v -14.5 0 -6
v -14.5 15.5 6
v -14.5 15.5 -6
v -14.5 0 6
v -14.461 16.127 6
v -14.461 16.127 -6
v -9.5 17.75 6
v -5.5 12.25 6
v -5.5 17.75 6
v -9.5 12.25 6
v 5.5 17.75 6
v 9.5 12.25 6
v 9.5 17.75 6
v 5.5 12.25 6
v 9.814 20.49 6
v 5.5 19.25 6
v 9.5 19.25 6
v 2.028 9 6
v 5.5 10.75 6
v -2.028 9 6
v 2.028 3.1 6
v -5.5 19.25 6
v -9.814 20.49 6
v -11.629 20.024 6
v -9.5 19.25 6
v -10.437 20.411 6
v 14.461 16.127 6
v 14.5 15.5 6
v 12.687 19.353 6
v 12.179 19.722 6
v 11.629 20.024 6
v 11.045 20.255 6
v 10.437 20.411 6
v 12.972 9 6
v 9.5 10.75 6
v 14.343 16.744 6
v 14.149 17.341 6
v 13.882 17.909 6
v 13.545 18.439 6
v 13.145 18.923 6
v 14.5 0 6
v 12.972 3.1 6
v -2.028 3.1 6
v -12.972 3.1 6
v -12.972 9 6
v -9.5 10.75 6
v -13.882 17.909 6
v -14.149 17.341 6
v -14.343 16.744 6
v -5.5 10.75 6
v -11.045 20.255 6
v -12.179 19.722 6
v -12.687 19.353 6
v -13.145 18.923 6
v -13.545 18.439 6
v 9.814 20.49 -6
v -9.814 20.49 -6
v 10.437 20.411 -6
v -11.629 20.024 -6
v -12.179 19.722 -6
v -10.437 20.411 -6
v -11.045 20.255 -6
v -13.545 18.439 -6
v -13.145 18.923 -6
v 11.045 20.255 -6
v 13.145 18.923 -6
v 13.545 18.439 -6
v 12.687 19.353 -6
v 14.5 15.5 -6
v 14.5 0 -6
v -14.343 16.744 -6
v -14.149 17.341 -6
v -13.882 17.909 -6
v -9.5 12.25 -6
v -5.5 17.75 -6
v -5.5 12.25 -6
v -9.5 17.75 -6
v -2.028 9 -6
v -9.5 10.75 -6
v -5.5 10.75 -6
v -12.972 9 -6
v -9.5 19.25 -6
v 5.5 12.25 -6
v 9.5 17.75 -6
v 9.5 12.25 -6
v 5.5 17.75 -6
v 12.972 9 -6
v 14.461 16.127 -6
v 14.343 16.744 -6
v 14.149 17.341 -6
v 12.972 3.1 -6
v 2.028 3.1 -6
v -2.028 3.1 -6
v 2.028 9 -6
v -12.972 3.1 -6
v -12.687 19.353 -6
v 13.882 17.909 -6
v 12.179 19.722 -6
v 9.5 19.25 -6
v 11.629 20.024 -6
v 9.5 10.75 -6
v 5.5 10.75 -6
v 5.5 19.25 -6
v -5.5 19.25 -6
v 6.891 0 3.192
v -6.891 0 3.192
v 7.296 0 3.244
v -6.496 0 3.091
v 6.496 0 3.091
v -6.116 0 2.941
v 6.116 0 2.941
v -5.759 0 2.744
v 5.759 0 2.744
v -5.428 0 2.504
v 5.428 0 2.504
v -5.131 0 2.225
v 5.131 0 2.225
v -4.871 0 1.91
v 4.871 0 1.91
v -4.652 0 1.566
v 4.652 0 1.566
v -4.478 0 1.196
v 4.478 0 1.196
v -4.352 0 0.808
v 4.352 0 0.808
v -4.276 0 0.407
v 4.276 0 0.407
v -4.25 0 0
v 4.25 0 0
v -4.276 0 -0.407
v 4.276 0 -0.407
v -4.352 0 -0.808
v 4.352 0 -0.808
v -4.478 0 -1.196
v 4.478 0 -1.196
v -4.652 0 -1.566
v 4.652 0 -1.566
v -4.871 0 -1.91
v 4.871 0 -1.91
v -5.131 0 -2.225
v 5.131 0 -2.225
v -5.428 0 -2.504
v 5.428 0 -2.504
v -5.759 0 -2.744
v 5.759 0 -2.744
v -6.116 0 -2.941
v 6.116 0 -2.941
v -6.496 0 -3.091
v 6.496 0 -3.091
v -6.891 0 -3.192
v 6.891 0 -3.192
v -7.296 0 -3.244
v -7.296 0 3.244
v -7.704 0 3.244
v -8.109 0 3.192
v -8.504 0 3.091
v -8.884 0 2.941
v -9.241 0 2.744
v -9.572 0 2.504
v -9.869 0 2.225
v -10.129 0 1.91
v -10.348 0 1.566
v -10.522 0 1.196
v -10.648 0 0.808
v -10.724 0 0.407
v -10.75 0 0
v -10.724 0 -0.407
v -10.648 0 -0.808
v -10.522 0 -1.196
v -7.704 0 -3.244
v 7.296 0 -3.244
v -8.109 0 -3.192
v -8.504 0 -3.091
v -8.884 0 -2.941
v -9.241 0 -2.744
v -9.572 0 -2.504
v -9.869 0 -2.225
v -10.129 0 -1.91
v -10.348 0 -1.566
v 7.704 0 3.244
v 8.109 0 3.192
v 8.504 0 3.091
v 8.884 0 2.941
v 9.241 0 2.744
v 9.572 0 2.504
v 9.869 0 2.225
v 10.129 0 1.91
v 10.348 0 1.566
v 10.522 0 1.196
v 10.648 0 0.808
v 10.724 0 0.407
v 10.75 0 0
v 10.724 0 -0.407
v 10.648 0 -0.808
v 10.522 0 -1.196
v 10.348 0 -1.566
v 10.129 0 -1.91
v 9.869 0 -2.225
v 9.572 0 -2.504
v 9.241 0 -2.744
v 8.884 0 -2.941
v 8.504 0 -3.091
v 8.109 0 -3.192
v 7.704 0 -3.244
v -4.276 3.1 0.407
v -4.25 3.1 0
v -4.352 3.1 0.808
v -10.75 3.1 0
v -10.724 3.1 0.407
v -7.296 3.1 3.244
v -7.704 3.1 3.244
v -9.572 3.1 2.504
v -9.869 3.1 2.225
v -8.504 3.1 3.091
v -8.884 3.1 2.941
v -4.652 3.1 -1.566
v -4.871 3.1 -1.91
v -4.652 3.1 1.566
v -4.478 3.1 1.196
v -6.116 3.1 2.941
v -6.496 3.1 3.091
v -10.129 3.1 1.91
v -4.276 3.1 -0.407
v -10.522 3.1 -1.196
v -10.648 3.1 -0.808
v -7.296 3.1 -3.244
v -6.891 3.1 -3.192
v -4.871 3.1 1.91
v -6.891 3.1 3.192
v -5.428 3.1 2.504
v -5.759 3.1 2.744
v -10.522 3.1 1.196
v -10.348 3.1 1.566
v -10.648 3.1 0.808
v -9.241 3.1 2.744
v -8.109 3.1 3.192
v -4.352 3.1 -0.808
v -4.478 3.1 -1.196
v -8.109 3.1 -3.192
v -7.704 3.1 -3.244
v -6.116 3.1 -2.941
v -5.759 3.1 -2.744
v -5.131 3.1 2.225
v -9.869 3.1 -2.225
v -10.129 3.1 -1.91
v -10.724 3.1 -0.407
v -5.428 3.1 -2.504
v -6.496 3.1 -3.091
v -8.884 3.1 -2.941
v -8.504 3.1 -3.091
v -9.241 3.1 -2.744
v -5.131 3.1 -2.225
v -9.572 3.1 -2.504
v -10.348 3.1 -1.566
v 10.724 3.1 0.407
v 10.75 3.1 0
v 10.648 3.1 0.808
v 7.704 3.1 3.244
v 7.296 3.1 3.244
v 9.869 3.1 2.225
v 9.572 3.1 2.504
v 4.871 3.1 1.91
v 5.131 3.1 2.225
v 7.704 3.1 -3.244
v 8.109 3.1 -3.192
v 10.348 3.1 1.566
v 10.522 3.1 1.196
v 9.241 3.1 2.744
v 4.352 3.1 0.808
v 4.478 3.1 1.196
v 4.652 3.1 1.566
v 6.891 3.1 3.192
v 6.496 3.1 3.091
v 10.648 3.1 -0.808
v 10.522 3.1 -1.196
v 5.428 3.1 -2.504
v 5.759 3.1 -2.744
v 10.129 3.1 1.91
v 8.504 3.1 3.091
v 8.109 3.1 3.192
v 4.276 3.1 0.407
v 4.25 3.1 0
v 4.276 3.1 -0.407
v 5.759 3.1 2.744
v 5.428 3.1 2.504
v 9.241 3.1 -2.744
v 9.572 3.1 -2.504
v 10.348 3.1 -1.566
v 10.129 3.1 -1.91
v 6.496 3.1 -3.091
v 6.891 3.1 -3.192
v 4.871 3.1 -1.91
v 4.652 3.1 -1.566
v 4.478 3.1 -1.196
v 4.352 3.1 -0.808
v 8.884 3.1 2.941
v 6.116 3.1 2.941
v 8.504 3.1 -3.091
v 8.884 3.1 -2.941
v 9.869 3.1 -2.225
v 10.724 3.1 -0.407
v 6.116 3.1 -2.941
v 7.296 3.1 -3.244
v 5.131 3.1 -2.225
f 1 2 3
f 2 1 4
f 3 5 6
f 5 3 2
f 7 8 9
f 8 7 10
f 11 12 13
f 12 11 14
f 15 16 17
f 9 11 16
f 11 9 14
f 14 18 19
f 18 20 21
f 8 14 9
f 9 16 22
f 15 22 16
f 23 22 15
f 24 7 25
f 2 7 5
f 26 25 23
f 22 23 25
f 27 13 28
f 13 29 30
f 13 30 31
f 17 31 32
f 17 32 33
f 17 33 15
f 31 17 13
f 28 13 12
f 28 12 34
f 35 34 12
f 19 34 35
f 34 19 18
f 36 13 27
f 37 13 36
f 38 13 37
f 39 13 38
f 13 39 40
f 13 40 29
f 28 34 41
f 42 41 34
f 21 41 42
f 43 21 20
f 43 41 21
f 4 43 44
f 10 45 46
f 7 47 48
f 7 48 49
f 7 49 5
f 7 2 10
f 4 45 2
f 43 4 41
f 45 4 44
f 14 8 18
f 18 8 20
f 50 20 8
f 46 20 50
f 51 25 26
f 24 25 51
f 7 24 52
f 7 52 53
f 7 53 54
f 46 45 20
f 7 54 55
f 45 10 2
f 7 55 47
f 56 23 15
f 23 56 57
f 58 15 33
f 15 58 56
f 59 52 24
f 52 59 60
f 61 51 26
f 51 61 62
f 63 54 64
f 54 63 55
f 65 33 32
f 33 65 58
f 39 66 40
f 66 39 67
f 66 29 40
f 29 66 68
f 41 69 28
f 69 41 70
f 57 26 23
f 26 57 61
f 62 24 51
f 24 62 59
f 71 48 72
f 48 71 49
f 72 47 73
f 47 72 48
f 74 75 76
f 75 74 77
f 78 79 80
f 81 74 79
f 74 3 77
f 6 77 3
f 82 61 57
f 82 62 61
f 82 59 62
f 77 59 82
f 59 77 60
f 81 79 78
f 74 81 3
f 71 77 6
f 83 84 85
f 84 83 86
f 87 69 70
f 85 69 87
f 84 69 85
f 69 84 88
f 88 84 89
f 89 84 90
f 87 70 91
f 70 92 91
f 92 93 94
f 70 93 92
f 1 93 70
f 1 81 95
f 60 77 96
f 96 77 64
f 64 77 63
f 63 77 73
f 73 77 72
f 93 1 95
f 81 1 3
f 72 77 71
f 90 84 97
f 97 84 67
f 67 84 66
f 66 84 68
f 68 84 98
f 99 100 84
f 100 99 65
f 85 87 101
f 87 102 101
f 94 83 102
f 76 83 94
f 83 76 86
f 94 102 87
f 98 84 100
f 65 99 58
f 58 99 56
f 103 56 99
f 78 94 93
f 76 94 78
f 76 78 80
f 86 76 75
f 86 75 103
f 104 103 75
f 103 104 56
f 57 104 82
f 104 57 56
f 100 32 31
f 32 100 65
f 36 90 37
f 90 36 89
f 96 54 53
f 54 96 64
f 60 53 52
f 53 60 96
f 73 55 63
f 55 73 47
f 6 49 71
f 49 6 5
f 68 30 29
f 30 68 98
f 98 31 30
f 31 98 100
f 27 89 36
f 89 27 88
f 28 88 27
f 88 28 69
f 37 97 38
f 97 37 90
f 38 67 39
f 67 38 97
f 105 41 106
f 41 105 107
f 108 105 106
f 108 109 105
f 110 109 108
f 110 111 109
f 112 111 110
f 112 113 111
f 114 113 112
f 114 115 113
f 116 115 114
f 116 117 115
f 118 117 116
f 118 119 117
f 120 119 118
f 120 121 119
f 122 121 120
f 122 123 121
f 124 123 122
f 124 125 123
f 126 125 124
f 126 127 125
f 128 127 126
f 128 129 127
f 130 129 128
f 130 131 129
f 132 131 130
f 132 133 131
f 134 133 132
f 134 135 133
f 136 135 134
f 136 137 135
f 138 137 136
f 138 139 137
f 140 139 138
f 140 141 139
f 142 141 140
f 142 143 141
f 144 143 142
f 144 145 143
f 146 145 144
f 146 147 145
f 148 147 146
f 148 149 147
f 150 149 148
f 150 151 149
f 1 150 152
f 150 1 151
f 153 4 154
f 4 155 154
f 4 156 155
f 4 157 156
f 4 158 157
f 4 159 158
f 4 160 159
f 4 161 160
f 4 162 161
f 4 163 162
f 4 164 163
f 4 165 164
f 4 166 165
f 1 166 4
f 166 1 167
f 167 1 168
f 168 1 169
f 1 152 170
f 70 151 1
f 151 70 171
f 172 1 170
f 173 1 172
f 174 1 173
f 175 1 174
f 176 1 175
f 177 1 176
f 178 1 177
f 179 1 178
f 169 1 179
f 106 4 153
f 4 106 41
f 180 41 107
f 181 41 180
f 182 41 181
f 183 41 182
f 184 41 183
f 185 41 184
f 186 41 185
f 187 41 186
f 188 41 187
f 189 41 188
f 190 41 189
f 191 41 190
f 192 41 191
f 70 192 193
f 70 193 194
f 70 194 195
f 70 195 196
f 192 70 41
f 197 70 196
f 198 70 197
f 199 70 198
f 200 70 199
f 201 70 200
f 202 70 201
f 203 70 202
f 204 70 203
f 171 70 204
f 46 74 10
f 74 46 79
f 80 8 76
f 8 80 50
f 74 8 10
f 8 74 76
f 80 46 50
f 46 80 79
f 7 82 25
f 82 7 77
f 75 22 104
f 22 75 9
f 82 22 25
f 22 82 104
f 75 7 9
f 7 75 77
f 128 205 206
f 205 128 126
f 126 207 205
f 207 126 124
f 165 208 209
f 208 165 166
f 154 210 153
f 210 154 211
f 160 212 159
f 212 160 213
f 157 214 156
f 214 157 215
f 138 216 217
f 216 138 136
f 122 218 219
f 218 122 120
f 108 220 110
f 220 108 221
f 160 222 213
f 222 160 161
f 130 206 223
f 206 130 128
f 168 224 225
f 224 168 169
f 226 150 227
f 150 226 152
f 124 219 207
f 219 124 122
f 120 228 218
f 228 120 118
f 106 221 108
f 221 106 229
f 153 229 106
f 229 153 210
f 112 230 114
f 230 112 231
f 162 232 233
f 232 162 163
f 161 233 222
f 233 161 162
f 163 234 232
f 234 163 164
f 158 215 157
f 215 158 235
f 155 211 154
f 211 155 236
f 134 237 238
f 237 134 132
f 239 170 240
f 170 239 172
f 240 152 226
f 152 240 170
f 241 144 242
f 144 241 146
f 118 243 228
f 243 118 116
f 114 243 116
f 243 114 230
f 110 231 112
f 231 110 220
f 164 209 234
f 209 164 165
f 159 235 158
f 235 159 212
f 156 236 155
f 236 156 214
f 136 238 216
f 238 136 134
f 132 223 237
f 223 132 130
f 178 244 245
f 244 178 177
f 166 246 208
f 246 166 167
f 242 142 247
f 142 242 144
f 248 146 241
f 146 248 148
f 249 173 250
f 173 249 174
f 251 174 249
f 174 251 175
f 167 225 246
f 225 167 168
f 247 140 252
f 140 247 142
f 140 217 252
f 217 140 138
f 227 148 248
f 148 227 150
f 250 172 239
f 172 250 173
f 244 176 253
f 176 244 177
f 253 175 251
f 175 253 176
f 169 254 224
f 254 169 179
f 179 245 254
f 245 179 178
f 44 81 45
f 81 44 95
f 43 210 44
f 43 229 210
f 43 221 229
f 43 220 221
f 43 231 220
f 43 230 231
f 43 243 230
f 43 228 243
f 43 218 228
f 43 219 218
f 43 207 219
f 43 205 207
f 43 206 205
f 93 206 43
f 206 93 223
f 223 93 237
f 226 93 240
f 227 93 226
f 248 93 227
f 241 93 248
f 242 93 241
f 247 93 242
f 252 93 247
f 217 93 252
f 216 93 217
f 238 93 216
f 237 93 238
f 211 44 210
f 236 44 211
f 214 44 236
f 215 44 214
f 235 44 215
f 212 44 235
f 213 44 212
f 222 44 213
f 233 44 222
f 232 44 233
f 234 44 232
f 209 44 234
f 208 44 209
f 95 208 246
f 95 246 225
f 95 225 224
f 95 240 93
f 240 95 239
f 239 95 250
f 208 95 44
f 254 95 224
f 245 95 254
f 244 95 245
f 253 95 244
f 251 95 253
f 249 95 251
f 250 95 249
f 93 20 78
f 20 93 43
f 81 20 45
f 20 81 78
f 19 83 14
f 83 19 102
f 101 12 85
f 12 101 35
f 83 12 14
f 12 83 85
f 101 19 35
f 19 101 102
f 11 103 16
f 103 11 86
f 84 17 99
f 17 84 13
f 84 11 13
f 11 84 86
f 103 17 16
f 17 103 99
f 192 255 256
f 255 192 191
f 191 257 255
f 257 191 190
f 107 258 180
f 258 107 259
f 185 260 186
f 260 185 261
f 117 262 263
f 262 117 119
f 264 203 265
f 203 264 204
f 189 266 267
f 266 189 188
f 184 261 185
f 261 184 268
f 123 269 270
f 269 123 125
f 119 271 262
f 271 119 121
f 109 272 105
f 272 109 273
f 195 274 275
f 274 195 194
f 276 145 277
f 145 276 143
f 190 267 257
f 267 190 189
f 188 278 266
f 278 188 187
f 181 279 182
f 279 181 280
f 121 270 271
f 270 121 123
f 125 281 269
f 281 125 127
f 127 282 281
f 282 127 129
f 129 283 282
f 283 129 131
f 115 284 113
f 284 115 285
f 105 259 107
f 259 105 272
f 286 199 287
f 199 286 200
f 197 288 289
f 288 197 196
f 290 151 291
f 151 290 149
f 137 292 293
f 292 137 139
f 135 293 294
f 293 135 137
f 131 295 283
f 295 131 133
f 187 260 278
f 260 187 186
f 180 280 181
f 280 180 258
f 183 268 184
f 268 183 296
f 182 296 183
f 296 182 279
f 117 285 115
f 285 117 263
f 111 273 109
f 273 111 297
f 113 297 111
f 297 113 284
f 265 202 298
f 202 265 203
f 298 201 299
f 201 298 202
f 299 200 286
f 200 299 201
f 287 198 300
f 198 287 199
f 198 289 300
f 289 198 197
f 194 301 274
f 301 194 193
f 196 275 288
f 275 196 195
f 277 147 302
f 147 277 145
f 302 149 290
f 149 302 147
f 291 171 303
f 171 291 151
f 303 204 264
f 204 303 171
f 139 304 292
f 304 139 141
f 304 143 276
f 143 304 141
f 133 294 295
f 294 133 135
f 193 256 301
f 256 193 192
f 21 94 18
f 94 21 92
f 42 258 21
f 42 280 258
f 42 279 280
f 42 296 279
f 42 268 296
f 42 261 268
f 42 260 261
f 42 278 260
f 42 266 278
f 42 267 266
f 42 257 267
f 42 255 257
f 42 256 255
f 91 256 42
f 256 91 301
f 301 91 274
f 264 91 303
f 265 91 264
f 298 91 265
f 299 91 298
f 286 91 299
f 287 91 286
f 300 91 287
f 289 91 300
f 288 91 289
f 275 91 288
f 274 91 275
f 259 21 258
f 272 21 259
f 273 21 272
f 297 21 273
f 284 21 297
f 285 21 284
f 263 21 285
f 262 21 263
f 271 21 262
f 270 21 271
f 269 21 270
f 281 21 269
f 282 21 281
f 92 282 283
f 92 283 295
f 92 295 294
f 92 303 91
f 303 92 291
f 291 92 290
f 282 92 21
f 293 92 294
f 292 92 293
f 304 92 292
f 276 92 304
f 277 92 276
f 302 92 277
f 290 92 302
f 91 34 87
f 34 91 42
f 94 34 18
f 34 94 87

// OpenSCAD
$fn = 50;


difference() {
	union() {
		translate(v = [0, 13.5000000000, -6.0000000000]) {
			rotate(a = [0, 0, 0]) {
				hull() {
					translate(v = [-9.5000000000, 2.0000000000, 0]) {
						rotate(a = [0, 0, 0]) {
							translate(v = [0, 0, 0]) {
								rotate(a = [0, 0, 0]) {
									cylinder(h = 12, r = 5);
								}
							}
						}
					}
					translate(v = [9.5000000000, 2.0000000000, 0]) {
						rotate(a = [0, 0, 0]) {
							translate(v = [0, 0, 0]) {
								rotate(a = [0, 0, 0]) {
									cylinder(h = 12, r = 5);
								}
							}
						}
					}
					translate(v = [-9.5000000000, -2.0000000000, 0]) {
						rotate(a = [0, 0, 0]) {
							translate(v = [0, 0, 0]) {
								rotate(a = [0, 0, 0]) {
									cylinder(h = 12, r = 5);
								}
							}
						}
					}
					translate(v = [9.5000000000, -2.0000000000, 0]) {
						rotate(a = [0, 0, 0]) {
							translate(v = [0, 0, 0]) {
								rotate(a = [0, 0, 0]) {
									cylinder(h = 12, r = 5);
								}
							}
						}
					}
				}
			}
		}
		translate(v = [-14.5000000000, 0, -6.0000000000]) {
			rotate(a = [0, 0, 0]) {
				cube(size = [29, 13.5000000000, 12]);
			}
		}
	}
	union() {
		translate(v = [-9.5000000000, 10.7500000000, -50]) {
			rotate(a = [0, 0, 0]) {
				cube(size = [4, 1.5000000000, 100]);
			}
		}
		translate(v = [-9.5000000000, 17.7500000000, -50]) {
			rotate(a = [0, 0, 0]) {
				cube(size = [4, 1.5000000000, 100]);
			}
		}
		translate(v = [-7.5000000000, 8, 0]) {
			rotate(a = [90, 0, 0]) {
				cylinder(h = 8, r = 3.2500000000);
			}
		}
		translate(v = [-12.9716204506, 9, -25]) {
			rotate(a = [90, 0, 0]) {
				cube(size = [10.9432409012, 100, 5.9000000000]);
			}
		}
		translate(v = [5.5000000000, 10.7500000000, -50]) {
			rotate(a = [0, 0, 0]) {
				cube(size = [4, 1.5000000000, 100]);
			}
		}
		translate(v = [5.5000000000, 17.7500000000, -50]) {
			rotate(a = [0, 0, 0]) {
				cube(size = [4, 1.5000000000, 100]);
			}
		}
		translate(v = [7.5000000000, 8, 0]) {
			rotate(a = [90, 0, 0]) {
				cylinder(h = 8, r = 3.2500000000);
			}
		}
		translate(v = [2.0283795494, 9, -25]) {
			rotate(a = [90, 0, 0]) {
				cube(size = [10.9432409012, 100, 5.9000000000]);
			}
		}
	}
}
